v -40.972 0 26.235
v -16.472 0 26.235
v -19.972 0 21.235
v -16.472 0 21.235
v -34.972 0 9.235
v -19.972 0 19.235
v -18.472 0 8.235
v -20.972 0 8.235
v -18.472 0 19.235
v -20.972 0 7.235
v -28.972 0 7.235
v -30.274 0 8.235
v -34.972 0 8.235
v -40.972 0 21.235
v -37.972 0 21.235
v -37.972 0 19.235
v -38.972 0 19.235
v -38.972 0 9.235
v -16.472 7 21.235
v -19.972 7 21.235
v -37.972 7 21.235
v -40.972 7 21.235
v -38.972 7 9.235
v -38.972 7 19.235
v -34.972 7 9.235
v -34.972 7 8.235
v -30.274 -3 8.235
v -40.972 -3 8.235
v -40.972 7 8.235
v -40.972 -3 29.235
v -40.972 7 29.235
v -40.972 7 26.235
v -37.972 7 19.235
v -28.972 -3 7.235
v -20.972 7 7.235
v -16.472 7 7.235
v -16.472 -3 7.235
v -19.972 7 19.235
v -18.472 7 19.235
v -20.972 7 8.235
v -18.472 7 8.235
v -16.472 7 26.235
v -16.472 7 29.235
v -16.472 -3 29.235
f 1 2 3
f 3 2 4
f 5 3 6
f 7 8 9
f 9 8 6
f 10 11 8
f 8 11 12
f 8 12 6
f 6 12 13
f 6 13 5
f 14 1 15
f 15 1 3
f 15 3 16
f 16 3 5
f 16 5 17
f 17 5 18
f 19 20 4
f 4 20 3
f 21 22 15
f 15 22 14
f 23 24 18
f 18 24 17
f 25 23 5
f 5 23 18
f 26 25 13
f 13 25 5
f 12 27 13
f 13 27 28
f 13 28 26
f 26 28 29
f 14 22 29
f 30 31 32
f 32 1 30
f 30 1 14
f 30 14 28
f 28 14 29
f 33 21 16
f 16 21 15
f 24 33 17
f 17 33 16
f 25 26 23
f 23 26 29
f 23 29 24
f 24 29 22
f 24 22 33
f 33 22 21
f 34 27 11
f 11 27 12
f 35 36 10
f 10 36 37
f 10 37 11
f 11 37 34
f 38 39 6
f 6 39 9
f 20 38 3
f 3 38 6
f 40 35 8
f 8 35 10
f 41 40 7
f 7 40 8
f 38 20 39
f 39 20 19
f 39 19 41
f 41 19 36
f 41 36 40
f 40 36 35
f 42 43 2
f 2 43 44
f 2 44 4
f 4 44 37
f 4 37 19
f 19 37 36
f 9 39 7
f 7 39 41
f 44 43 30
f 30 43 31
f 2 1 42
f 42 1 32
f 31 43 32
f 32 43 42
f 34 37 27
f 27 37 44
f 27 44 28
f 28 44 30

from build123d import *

# Parameters (mm, degrees)
BOSS_EXTRUDE1_DEPTH   = 7
BOSS_EXTRUDE1_2_DEPTH = 7
BOSS_EXTRUDE2_DEPTH   = 2
SKETCH4_W             = 14
SKETCH4_H             = 9
BOSS_EXTRUDE3_DEPTH   = 0.5
SKETCH5_W             = 11
SKETCH5_H             = 7
CUT_EXTRUDE1_DEPTH    = 0.5
SKETCH6_W             = 24.5
SKETCH6_H             = 2
BOSS_EXTRUDE4_DEPTH   = 8
SKETCH7_W             = 24.5
SKETCH7_H             = 3
BOSS_EXTRUDE5_DEPTH   = 7
BOSS_EXTRUDE6_DEPTH   = 1


with BuildPart() as part:
    # Sketch1 → Boss-Extrude1 (new body)
    with BuildSketch(Plane(origin=(0, 0, 0), x_dir=(1, 0, 0), z_dir=(0, 1, 0))):
        Polygon((-38.972010623, -19.234572985), (-37.972010623, -19.234572985), (-37.972010623, -21.234572985), (-40.972010623, -21.234572985), (-40.972010623, -8.234572985), (-34.972010623, -8.234572985), (-34.972010623, -9.234572985), (-38.972010623, -9.234572985), align=None)
    extrude(amount=BOSS_EXTRUDE1_DEPTH)



with BuildPart() as body_2:
    # Sketch1 → Boss-Extrude1 2 (new body)
    with BuildSketch(Plane(origin=(0, 0, 0), x_dir=(1, 0, 0), z_dir=(0, 1, 0))):
        Polygon((-18.972010623, -19.234572985), (-18.972010623, -8.234572985), (-20.972010623, -8.234572985), (-20.972010623, -7.234572985), (-16.972010623, -7.234572985), (-16.972010623, -21.234572985), (-19.972010623, -21.234572985), (-19.972010623, -19.234572985), align=None)
    extrude(amount=BOSS_EXTRUDE1_2_DEPTH)


with BuildPart() as part_1:
    add(part.part)

    add(body_2.part)  # Boss-Extrude2 merges body 2
    # Sketch2 → Boss-Extrude2 (add)
    with BuildSketch(Plane.XZ):
        Polygon((-40.972010623, 21.234572985), (-16.972010623, 21.234572985), (-16.972010623, 7.234572985), (-28.972010623, 7.234572985), (-30.273567276, 8.234572985), (-40.972010623, 8.234572985), align=None)
    extrude(amount=BOSS_EXTRUDE2_DEPTH)

    # Sketch4 → Boss-Extrude3 (add)
    with BuildSketch(Plane(origin=(-16.972010623, 0, 0), x_dir=(0, 0, -1), z_dir=(1, 0, 0))):
        with Locations((-14.234572985, 2.5)):
            Rectangle(SKETCH4_W, SKETCH4_H)
    extrude(amount=BOSS_EXTRUDE3_DEPTH)

    # Sketch5 → Cut-Extrude1 (cut)
    with BuildSketch(Plane.ZY.offset(18.972010623)):
        with Locations((13.734572985, 3.5)):
            Rectangle(SKETCH5_W, SKETCH5_H)
    extrude(amount=-CUT_EXTRUDE1_DEPTH, mode=Mode.SUBTRACT)

    # Sketch6 → Boss-Extrude4 (add)
    with BuildSketch(Plane.XY.offset(21.234572985)):
        with Locations((-28.722010623, -1)):
            Rectangle(SKETCH6_W, SKETCH6_H)
    extrude(amount=BOSS_EXTRUDE4_DEPTH)

    # Sketch7 → Boss-Extrude5 (add)
    with BuildSketch(Plane(origin=(0, 0, 0), x_dir=(1, 0, 0), z_dir=(0, 1, 0))):
        with Locations((-28.722010623, -27.734572985)):
            Rectangle(SKETCH7_W, SKETCH7_H)
    extrude(amount=BOSS_EXTRUDE5_DEPTH)

    # Sketch8 → Boss-Extrude6 (add)
    with BuildSketch(Plane.XZ.offset(2)):
        Polygon((-40.972010623, 29.234572985), (-40.972010623, 8.234572985), (-30.273567276, 8.234572985), (-28.972010623, 7.234572985), (-16.472010623, 7.234572985), (-16.472010623, 29.234572985), align=None)
    extrude(amount=BOSS_EXTRUDE6_DEPTH)


solid = part_1.part
